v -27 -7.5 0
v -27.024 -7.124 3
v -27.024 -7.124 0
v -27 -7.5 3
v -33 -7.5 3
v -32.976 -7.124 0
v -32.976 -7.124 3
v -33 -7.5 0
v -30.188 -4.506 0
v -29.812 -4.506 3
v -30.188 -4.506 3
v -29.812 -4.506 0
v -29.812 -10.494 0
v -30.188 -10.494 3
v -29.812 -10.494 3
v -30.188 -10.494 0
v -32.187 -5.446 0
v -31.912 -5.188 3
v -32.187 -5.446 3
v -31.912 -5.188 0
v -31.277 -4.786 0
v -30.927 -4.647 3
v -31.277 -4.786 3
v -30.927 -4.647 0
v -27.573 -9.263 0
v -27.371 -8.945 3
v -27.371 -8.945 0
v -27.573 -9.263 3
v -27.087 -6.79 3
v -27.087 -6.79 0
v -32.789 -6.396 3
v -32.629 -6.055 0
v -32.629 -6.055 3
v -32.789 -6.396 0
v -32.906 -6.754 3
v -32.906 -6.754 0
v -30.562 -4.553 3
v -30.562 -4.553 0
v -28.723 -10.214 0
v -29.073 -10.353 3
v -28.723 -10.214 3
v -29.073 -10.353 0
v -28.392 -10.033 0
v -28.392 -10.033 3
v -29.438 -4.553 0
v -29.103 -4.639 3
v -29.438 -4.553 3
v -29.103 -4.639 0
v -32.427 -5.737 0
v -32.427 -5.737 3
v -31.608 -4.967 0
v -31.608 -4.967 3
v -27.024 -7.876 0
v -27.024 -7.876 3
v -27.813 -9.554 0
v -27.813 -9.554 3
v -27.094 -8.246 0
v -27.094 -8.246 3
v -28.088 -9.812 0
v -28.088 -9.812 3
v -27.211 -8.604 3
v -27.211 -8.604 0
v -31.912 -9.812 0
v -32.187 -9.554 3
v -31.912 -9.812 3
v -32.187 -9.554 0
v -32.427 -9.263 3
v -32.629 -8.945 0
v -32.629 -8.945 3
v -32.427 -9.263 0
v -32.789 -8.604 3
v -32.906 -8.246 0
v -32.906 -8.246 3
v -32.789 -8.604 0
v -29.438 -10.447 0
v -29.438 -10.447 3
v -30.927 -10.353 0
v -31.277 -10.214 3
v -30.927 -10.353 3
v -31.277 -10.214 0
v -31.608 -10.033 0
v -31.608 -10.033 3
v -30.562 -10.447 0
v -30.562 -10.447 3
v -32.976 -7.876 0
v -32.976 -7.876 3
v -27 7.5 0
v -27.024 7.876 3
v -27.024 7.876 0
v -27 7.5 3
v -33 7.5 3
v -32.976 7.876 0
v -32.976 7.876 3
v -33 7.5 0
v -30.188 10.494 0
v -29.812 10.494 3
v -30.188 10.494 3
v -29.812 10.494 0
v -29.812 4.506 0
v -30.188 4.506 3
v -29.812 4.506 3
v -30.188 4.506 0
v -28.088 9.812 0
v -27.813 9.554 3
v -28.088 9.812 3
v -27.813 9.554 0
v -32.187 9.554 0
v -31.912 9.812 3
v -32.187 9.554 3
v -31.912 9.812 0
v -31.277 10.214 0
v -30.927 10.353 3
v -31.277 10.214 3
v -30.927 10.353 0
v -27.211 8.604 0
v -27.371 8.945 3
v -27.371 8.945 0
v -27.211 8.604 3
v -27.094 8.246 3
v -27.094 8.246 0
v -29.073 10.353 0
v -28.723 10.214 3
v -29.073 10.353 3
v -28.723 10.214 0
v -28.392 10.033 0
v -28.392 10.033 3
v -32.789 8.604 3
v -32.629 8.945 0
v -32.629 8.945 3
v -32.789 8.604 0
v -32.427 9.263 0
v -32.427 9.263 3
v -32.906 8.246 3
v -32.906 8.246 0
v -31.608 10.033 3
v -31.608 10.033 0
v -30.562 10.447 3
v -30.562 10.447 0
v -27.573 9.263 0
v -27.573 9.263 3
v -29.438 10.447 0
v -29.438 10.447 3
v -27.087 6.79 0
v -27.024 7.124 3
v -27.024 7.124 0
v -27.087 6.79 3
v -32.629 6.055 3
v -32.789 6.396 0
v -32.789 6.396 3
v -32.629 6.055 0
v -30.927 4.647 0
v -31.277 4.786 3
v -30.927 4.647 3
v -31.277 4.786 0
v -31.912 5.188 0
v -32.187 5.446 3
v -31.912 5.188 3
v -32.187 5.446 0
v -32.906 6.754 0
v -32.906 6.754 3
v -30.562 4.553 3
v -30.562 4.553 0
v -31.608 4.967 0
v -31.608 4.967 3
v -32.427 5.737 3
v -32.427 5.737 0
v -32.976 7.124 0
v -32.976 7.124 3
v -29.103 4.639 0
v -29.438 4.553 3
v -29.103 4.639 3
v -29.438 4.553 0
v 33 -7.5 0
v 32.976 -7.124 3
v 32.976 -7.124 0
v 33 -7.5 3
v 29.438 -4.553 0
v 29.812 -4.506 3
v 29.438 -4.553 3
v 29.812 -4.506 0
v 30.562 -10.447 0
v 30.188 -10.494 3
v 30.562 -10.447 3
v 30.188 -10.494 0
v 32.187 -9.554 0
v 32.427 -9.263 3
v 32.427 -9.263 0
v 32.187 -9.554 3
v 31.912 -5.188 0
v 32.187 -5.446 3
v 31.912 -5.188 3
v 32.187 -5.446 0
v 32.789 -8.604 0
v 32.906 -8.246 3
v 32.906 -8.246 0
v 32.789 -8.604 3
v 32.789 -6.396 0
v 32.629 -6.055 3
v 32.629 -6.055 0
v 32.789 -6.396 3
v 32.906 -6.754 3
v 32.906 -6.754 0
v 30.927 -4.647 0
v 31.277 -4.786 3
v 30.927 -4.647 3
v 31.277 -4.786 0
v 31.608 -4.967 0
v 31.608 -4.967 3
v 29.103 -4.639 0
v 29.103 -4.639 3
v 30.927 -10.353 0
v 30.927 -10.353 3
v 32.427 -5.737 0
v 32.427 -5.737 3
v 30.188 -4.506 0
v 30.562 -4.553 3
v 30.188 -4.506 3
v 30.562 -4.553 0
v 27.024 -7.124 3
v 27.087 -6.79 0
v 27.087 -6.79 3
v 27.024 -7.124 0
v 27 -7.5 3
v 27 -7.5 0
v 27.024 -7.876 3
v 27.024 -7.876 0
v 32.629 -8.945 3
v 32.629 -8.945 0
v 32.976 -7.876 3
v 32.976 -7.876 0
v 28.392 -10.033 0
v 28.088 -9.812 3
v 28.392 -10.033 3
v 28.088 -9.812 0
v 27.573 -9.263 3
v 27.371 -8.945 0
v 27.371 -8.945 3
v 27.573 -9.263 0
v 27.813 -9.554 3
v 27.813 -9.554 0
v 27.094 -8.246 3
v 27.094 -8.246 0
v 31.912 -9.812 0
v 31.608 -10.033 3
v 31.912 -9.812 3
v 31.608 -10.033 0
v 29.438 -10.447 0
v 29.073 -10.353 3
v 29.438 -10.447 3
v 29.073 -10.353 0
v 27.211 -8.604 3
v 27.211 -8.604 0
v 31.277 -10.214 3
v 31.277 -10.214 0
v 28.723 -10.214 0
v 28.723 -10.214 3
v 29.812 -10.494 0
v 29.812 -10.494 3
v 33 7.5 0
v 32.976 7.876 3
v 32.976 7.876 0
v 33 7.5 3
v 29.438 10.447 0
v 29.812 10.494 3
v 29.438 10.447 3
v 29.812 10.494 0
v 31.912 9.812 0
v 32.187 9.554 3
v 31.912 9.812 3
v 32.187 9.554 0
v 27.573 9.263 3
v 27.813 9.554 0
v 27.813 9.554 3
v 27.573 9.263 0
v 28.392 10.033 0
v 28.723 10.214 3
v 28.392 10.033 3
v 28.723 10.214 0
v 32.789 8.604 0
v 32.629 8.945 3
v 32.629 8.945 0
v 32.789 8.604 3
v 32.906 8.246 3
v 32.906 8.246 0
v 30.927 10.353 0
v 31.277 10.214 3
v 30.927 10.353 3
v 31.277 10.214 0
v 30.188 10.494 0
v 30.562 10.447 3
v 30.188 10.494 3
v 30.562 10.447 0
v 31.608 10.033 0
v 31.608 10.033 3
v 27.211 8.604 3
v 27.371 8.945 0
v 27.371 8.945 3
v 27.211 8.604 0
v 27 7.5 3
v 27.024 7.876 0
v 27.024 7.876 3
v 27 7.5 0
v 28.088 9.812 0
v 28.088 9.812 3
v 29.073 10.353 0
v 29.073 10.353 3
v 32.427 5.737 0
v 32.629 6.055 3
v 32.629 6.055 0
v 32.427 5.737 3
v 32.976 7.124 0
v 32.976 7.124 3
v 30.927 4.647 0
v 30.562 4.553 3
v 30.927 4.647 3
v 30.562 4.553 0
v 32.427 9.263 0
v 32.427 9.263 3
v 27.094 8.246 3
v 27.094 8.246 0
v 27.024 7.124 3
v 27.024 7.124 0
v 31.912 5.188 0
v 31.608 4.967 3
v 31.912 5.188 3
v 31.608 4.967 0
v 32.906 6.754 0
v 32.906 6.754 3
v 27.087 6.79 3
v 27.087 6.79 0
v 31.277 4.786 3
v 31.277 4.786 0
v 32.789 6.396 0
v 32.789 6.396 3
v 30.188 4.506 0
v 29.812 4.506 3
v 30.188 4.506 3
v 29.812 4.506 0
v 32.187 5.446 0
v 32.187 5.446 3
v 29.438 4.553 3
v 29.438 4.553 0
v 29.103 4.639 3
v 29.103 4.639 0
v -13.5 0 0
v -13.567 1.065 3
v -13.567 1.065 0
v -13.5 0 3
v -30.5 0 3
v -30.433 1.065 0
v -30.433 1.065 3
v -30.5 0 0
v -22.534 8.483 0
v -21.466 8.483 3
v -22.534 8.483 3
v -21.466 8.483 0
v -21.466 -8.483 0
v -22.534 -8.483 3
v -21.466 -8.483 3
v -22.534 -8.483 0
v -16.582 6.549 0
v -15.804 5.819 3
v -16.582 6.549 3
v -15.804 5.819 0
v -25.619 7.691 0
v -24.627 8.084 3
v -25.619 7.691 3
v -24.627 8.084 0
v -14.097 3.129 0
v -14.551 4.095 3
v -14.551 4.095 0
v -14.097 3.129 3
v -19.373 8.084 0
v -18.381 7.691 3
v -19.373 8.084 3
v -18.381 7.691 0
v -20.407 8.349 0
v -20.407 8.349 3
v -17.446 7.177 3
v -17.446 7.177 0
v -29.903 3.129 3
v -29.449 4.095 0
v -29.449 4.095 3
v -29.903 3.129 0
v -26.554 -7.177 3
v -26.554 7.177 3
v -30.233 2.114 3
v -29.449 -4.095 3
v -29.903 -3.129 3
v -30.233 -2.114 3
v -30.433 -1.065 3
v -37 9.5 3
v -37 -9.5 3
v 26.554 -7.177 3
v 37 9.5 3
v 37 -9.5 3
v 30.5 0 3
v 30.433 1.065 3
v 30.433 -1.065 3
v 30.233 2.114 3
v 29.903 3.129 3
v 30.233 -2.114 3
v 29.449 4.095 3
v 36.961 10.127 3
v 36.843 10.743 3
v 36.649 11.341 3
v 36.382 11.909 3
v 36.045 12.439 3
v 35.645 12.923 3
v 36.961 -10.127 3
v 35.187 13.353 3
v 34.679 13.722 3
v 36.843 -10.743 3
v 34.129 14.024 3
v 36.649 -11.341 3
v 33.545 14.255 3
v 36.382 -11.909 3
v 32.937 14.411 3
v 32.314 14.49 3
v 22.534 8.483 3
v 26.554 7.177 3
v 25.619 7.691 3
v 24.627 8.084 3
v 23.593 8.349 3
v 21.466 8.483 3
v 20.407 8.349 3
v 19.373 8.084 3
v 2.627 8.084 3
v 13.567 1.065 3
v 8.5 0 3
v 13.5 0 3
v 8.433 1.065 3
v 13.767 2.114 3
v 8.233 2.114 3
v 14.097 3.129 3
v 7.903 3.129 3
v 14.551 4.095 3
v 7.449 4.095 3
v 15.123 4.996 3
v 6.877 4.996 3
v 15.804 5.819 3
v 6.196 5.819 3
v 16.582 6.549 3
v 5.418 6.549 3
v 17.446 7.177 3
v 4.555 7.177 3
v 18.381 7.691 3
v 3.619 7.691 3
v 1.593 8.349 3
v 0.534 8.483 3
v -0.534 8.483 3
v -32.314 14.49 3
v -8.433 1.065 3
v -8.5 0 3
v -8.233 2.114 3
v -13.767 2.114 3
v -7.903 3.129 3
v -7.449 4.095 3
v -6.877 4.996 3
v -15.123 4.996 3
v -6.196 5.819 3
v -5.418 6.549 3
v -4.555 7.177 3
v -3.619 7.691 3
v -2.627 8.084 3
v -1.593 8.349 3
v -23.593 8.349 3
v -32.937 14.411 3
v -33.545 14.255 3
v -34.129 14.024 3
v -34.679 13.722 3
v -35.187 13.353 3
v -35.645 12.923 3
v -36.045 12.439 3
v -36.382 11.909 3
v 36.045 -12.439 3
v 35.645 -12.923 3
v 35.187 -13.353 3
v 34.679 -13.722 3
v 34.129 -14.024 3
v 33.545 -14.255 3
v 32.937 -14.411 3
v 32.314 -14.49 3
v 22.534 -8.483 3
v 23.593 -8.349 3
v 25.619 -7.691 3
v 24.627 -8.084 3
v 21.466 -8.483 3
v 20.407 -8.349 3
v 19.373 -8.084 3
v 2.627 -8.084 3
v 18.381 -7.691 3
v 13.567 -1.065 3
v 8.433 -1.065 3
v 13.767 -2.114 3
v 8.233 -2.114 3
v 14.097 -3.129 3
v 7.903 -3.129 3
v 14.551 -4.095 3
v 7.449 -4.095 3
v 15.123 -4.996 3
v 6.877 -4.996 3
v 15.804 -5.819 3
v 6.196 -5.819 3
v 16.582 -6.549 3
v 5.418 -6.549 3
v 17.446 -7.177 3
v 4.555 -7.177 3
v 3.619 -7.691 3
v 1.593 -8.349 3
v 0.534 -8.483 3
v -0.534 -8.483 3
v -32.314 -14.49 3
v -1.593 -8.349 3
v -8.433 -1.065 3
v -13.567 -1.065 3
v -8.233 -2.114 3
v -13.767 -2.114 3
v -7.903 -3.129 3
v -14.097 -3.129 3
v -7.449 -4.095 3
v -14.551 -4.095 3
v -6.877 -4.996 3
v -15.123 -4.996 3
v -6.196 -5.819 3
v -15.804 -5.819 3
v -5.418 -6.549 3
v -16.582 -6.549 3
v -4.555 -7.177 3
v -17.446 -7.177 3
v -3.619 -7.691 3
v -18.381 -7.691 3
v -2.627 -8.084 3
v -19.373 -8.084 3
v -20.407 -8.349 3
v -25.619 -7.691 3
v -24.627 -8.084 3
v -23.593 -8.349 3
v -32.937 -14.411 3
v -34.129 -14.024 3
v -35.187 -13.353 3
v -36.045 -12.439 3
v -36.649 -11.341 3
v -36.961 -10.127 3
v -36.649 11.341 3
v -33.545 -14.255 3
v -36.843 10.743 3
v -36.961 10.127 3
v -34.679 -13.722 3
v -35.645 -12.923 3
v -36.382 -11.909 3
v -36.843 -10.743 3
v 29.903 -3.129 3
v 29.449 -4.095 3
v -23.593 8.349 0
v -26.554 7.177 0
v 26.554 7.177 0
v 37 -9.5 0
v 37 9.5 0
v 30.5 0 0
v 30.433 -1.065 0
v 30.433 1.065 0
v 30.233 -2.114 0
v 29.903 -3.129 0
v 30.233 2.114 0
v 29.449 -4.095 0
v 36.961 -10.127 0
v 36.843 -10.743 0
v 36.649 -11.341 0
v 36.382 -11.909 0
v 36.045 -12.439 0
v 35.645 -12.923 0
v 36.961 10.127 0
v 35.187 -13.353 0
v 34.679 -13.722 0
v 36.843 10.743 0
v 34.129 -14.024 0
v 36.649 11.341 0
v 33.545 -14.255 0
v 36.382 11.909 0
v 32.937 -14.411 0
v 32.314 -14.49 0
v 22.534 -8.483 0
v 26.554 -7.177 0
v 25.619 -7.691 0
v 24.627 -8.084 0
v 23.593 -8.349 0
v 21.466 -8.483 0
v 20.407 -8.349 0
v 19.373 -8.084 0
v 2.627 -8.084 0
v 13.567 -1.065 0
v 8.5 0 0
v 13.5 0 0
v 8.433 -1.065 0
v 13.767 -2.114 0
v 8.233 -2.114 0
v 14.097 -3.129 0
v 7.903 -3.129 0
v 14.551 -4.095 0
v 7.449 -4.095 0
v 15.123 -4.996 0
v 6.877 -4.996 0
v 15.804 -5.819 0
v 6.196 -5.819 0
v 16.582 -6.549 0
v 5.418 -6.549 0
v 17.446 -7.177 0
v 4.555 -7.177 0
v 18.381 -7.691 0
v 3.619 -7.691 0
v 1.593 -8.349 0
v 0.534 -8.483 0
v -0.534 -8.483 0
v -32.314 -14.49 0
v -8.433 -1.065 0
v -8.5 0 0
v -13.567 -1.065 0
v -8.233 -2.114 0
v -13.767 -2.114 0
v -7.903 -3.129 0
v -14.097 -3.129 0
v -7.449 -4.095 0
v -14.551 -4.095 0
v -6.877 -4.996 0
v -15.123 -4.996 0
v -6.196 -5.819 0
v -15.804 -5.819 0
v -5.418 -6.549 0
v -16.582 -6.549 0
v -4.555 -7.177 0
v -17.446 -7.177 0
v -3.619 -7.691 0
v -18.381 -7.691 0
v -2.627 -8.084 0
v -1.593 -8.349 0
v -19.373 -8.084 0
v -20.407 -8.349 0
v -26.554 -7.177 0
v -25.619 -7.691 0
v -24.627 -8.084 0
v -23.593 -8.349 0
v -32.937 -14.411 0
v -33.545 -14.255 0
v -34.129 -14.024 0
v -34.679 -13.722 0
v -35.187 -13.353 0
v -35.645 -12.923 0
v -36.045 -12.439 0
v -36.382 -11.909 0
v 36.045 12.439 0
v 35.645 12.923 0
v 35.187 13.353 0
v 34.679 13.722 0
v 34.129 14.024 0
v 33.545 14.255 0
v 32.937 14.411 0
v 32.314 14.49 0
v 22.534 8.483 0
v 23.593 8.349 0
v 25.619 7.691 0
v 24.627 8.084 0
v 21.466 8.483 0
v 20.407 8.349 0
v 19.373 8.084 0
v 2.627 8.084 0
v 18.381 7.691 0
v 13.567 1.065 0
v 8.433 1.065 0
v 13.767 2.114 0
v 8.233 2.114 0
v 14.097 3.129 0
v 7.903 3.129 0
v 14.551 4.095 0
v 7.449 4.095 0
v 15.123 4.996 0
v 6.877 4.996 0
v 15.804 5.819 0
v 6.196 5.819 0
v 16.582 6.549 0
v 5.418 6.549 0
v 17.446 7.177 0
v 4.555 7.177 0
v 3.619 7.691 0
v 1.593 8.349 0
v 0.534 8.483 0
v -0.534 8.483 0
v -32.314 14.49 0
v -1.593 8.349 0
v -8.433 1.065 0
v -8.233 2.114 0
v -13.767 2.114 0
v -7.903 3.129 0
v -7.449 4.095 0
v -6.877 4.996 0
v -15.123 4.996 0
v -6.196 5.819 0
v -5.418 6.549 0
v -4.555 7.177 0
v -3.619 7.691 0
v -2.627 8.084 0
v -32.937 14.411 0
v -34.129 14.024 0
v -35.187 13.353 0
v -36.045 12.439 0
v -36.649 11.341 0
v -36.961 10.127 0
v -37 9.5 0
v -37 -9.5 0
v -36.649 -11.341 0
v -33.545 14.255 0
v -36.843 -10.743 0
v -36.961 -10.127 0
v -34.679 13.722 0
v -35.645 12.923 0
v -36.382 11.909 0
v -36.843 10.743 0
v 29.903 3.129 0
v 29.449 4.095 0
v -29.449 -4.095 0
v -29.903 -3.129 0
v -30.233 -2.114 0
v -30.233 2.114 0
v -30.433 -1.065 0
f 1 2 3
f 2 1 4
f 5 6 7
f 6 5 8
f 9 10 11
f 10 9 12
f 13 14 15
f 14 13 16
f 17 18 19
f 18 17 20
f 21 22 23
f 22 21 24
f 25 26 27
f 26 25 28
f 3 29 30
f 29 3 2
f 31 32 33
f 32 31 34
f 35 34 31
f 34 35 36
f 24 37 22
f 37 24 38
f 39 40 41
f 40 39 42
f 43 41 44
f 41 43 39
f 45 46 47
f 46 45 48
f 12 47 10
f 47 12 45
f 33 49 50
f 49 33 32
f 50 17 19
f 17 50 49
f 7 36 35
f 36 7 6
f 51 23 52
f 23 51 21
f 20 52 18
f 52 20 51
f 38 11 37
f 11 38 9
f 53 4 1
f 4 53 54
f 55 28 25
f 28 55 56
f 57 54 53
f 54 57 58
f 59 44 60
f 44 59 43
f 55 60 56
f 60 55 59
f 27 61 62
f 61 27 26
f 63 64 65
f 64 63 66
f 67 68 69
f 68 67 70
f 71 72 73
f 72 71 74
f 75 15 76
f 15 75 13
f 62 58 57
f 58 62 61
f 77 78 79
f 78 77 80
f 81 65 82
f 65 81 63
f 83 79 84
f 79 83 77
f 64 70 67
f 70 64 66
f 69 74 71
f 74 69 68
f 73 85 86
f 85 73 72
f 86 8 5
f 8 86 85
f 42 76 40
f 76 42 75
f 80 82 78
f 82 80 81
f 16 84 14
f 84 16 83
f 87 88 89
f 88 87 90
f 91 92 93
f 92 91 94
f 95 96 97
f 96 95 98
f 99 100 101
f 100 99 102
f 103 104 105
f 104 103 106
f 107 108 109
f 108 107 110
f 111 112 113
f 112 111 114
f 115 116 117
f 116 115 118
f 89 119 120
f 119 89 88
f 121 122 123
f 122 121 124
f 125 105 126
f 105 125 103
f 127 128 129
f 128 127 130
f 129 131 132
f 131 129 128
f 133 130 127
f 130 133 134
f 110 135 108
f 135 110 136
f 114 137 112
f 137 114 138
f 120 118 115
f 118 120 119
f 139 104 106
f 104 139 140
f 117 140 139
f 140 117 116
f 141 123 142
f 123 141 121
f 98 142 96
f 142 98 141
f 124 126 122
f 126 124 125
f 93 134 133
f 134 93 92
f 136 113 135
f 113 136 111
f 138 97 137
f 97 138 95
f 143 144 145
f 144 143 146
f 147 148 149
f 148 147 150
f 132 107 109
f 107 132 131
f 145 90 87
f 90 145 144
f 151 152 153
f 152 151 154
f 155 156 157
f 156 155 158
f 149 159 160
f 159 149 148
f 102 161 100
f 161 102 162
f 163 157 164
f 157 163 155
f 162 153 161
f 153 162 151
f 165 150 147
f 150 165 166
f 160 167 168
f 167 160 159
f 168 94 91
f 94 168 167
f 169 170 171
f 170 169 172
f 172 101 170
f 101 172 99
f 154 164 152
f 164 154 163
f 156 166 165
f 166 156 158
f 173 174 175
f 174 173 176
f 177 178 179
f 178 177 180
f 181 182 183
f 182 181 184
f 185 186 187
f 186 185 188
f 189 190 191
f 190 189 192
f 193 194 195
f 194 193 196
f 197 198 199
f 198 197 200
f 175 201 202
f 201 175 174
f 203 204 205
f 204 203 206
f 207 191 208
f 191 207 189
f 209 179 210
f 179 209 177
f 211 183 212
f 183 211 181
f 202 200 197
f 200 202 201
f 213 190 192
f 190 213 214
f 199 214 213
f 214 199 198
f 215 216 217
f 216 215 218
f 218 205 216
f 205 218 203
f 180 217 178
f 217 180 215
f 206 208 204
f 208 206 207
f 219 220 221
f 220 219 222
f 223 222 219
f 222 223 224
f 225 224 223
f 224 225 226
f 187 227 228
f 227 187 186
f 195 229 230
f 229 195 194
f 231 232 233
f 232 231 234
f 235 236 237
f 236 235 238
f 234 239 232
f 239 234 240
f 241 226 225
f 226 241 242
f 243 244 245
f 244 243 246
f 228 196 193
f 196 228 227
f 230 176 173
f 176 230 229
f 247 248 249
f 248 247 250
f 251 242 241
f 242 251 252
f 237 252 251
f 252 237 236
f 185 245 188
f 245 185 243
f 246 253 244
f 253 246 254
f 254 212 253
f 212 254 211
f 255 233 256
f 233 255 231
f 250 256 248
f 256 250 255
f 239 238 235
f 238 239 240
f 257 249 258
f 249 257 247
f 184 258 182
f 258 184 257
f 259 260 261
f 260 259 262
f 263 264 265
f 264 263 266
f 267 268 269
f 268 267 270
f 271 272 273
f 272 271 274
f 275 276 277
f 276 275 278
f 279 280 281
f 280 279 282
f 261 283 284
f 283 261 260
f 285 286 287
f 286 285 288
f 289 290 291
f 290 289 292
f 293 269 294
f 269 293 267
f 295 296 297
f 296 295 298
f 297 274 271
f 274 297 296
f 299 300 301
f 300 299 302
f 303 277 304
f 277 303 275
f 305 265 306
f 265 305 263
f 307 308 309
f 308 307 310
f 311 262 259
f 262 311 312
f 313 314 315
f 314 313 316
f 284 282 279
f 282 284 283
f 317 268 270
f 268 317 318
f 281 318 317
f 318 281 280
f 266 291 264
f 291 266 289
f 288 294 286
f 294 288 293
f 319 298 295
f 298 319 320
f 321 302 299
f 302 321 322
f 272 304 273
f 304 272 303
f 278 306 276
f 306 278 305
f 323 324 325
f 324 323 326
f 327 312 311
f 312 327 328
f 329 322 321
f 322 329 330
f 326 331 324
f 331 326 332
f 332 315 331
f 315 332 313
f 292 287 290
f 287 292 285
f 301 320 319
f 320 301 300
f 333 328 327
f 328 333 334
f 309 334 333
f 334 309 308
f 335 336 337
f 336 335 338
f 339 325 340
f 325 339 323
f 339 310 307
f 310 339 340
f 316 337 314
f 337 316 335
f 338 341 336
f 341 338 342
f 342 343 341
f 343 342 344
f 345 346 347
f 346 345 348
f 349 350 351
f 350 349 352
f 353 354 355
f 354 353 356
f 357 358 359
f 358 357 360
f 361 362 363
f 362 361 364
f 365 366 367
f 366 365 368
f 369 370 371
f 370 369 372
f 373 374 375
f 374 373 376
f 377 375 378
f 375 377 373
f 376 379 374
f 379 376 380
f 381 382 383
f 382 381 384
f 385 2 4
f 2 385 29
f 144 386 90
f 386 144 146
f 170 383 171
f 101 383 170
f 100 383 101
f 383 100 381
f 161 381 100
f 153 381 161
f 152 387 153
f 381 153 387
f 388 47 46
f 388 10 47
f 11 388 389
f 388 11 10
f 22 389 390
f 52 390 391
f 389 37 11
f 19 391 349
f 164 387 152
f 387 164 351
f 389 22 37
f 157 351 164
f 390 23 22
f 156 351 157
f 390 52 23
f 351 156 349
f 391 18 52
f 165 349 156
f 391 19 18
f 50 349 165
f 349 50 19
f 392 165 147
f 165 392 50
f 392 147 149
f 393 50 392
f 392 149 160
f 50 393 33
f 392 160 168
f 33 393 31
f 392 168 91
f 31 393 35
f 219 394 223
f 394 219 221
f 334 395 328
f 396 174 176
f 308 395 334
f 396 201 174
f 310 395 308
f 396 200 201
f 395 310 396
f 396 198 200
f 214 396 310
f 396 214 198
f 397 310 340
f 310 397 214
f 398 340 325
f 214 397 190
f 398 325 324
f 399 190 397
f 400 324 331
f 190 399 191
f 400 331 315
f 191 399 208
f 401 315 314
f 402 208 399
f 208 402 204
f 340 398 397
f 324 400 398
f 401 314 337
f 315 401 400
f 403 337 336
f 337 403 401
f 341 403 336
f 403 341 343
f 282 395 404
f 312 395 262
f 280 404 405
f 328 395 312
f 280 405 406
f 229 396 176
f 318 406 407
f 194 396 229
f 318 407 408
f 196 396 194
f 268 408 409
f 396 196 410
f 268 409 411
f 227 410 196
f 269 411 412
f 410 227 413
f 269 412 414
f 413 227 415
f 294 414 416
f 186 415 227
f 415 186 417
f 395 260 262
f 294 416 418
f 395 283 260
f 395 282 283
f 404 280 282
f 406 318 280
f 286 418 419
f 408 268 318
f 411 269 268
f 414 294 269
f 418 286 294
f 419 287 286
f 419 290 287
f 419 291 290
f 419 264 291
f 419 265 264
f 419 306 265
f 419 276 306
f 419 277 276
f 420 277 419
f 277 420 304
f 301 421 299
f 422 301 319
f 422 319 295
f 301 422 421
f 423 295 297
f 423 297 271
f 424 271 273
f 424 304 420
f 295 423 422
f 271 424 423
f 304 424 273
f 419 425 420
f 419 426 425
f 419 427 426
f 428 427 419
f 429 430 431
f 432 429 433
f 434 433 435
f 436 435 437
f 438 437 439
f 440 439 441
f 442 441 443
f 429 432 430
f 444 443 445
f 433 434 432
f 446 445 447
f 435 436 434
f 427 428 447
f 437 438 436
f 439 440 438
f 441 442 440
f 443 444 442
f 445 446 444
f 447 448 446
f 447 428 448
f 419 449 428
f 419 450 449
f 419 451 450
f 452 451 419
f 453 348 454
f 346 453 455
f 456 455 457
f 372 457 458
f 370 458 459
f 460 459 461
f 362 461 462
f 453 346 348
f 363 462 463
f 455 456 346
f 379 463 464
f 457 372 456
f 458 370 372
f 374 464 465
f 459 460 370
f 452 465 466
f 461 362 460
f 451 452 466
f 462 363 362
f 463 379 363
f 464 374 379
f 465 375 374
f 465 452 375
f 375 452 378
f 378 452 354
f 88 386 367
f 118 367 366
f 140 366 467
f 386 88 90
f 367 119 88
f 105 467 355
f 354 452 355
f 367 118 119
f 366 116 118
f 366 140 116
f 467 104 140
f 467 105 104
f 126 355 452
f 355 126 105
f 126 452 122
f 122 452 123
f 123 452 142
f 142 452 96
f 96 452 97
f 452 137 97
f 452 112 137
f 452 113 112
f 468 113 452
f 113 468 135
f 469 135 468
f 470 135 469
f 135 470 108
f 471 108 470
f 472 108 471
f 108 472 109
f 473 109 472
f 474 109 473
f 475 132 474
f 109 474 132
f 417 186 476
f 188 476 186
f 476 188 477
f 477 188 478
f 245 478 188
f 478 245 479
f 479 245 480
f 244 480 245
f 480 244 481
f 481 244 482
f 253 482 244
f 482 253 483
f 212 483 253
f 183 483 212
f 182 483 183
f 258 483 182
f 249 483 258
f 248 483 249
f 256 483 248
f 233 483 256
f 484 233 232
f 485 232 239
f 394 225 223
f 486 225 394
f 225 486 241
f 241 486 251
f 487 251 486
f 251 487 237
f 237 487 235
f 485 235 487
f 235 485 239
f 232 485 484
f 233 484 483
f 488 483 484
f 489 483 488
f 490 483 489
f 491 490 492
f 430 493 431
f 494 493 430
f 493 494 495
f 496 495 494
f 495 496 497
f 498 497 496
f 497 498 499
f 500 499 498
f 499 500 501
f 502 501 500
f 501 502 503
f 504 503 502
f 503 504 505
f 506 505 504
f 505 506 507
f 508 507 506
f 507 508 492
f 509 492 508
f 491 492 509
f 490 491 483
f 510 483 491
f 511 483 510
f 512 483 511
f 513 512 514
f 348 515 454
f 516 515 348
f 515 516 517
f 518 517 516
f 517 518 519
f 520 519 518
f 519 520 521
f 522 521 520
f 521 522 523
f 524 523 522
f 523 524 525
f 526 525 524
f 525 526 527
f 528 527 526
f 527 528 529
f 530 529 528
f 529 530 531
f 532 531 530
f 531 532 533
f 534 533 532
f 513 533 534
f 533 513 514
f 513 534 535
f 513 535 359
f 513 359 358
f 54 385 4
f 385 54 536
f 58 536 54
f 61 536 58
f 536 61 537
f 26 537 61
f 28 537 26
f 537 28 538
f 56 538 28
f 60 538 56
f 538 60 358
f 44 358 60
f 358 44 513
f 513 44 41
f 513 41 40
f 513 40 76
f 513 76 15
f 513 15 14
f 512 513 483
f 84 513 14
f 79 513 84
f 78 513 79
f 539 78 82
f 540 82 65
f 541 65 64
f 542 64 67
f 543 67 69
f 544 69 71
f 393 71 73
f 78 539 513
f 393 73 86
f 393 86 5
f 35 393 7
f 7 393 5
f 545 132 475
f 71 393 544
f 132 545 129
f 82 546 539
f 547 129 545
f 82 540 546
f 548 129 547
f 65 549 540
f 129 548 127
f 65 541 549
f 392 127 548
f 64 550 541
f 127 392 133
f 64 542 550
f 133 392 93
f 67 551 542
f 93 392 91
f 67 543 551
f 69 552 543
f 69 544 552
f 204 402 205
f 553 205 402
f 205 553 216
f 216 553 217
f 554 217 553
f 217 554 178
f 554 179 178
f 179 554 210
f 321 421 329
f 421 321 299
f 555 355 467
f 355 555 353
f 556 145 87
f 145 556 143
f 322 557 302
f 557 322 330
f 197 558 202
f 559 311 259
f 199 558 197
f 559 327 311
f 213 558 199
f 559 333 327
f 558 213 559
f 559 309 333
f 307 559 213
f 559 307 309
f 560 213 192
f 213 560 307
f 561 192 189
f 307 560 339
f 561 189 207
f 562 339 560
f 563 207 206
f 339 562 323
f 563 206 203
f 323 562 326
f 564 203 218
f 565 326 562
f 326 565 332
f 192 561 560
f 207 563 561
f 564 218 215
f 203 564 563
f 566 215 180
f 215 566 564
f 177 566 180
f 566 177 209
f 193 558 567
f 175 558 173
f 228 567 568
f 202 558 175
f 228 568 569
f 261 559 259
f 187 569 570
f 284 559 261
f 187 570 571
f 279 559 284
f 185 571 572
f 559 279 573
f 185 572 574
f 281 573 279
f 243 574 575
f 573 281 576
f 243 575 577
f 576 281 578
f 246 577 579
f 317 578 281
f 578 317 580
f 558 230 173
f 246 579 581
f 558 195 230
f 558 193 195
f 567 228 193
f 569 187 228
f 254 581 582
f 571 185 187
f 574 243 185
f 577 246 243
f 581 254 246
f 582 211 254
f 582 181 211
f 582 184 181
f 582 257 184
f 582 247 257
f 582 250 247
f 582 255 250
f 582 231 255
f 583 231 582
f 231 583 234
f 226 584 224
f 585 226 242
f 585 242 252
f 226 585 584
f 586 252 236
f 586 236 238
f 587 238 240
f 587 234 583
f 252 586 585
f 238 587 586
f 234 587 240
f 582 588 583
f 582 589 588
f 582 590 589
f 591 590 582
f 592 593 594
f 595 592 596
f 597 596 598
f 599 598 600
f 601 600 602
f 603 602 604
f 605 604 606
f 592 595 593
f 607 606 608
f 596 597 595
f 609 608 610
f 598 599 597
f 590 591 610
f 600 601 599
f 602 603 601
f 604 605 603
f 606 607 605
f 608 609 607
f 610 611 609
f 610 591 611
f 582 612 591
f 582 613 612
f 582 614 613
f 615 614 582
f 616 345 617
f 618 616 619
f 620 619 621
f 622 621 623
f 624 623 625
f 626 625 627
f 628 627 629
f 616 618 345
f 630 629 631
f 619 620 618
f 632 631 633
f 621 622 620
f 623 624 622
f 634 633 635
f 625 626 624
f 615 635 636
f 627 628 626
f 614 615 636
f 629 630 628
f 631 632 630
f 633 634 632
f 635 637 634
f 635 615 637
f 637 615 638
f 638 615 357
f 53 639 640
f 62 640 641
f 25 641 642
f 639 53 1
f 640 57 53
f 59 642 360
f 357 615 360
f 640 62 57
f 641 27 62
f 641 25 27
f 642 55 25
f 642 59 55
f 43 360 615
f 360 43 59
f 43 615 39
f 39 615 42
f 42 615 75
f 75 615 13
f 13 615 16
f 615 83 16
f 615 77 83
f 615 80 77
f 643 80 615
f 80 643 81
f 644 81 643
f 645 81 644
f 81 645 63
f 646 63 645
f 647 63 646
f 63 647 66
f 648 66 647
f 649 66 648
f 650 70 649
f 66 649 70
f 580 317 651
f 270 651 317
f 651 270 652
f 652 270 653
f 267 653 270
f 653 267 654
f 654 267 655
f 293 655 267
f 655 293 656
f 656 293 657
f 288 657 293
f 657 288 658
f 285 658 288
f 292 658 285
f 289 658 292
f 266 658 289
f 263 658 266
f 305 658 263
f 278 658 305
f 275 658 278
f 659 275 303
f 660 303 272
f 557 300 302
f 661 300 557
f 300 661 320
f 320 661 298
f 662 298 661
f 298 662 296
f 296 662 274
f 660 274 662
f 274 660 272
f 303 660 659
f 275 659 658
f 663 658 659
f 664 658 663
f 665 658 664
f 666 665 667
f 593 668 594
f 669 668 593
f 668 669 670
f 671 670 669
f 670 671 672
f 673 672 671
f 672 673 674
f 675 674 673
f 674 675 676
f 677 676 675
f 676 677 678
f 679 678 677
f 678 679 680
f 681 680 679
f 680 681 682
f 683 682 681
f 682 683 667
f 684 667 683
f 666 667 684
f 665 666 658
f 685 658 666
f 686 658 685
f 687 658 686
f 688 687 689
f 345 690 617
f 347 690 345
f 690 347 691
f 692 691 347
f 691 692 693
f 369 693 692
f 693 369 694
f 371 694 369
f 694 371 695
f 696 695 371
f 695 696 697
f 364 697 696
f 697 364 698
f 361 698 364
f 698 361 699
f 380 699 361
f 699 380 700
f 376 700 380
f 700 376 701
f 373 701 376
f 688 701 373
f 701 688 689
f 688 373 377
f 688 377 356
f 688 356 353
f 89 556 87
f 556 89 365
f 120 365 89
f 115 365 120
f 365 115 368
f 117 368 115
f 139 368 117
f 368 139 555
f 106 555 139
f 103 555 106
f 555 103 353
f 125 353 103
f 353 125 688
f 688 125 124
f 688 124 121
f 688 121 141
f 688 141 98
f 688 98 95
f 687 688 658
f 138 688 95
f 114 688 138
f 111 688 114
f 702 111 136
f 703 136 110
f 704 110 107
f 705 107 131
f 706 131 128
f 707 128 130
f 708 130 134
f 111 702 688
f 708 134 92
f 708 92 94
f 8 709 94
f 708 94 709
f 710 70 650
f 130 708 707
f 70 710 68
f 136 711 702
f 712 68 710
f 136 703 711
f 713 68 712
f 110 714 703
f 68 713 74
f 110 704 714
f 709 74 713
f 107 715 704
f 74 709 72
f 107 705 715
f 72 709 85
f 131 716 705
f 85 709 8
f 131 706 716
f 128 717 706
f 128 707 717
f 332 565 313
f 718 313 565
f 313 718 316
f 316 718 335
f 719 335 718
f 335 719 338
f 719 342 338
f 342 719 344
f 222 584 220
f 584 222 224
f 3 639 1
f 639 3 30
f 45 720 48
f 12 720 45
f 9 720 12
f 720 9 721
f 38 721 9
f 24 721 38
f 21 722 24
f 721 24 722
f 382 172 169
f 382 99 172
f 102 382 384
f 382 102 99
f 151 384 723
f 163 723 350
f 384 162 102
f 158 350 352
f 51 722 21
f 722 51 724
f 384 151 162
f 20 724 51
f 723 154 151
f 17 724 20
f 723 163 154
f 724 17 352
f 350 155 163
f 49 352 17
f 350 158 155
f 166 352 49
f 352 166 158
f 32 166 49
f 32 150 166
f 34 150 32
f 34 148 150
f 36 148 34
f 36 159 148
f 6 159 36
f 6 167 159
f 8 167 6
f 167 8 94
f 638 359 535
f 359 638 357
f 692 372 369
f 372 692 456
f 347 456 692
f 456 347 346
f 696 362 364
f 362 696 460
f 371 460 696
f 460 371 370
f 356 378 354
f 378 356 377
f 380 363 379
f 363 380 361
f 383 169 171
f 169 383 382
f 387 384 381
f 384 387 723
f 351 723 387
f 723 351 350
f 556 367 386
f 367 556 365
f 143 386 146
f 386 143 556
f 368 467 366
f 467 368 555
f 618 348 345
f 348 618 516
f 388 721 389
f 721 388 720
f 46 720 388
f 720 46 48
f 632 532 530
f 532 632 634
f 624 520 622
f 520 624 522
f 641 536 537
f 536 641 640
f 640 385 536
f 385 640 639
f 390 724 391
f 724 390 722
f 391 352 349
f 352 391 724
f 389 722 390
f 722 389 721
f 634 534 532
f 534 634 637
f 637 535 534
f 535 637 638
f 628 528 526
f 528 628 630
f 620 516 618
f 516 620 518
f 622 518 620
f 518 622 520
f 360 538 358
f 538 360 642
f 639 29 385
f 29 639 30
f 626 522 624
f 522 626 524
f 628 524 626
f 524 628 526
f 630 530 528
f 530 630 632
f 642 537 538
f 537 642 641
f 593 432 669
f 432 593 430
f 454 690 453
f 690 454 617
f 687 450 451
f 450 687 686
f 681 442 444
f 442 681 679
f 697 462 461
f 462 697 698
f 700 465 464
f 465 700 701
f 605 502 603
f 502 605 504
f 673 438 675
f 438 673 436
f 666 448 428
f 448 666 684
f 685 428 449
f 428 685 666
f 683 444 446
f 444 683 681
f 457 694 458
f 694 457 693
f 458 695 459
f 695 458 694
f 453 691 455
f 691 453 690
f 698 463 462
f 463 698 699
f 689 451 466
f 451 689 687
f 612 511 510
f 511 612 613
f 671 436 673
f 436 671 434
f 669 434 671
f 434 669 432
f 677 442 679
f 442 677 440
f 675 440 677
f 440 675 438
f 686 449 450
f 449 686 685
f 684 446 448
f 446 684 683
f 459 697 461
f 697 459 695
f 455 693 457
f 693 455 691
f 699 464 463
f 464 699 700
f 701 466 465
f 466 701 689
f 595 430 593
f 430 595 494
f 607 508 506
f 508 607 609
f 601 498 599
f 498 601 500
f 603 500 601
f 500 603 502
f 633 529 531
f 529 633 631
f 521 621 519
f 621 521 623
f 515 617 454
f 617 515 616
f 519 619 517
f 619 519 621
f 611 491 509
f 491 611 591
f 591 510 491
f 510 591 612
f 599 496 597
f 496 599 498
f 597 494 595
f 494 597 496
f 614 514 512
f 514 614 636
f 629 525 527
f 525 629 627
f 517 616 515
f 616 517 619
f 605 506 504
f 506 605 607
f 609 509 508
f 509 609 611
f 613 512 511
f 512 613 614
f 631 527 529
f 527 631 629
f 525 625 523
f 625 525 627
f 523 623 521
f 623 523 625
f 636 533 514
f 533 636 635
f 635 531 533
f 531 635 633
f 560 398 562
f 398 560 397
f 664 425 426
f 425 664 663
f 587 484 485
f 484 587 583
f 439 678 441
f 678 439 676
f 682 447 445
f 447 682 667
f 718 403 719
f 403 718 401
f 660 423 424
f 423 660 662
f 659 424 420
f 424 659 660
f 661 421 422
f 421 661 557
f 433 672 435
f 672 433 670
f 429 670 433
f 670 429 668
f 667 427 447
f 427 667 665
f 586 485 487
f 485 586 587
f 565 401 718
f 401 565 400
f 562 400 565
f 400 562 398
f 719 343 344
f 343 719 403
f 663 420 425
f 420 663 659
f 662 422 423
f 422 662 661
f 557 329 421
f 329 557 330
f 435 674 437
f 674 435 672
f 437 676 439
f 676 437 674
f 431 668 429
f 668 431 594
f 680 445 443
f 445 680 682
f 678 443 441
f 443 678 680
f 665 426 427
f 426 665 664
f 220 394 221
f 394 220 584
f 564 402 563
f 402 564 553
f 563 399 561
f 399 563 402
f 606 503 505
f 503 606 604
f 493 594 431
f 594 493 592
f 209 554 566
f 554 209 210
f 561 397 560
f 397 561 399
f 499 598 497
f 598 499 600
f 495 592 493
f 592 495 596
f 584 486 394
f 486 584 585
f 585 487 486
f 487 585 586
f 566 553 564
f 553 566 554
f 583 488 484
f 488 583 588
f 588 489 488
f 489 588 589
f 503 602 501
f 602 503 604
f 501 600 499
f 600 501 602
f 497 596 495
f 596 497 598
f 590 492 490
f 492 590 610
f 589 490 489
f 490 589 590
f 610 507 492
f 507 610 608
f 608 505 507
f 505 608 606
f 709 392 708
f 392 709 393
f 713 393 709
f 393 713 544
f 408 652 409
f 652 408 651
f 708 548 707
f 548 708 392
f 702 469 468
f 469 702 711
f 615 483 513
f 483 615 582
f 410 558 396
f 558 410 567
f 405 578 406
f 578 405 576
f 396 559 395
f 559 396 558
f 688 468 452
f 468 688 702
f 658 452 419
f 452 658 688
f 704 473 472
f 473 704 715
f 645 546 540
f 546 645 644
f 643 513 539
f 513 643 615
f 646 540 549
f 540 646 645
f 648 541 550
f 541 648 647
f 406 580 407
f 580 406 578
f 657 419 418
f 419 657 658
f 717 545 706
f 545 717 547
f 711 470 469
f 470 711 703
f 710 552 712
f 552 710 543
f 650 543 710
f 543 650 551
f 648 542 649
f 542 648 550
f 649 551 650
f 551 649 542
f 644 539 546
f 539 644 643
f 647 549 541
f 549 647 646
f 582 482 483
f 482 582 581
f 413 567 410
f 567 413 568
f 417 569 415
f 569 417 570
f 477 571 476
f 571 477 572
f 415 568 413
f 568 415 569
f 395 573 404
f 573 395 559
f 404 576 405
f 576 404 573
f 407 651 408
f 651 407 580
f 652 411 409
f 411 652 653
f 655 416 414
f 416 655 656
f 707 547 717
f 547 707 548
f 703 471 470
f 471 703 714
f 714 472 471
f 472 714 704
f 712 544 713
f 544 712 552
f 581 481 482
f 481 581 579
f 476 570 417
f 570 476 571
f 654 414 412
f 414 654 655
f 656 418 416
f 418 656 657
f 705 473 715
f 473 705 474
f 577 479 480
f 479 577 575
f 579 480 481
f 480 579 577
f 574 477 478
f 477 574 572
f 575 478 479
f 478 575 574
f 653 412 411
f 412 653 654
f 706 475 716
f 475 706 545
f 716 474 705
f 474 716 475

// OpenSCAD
$fn = 50;


difference() {
	union() {
		hull() {
			translate(v = [-32.0000000000, 9.5000000000, 0]) {
				cylinder(h = 3, r = 5);
			}
			translate(v = [32.0000000000, 9.5000000000, 0]) {
				cylinder(h = 3, r = 5);
			}
			translate(v = [-32.0000000000, -9.5000000000, 0]) {
				cylinder(h = 3, r = 5);
			}
			translate(v = [32.0000000000, -9.5000000000, 0]) {
				cylinder(h = 3, r = 5);
			}
		}
	}
	union() {
		#translate(v = [-30.0000000000, -7.5000000000, -100.0000000000]) {
			cylinder(h = 200, r = 3.0000000000);
		}
		#translate(v = [-30.0000000000, 7.5000000000, -100.0000000000]) {
			cylinder(h = 200, r = 3.0000000000);
		}
		#translate(v = [30.0000000000, -7.5000000000, -100.0000000000]) {
			cylinder(h = 200, r = 3.0000000000);
		}
		#translate(v = [30.0000000000, 7.5000000000, -100.0000000000]) {
			cylinder(h = 200, r = 3.0000000000);
		}
		#translate(v = [-22.0000000000, 0, 0]) {
			cylinder(h = 3, r = 8.5000000000);
		}
		#cylinder(h = 3, r = 8.5000000000);
		#translate(v = [22.0000000000, 0, 0]) {
			cylinder(h = 3, r = 8.5000000000);
		}
	}
}
